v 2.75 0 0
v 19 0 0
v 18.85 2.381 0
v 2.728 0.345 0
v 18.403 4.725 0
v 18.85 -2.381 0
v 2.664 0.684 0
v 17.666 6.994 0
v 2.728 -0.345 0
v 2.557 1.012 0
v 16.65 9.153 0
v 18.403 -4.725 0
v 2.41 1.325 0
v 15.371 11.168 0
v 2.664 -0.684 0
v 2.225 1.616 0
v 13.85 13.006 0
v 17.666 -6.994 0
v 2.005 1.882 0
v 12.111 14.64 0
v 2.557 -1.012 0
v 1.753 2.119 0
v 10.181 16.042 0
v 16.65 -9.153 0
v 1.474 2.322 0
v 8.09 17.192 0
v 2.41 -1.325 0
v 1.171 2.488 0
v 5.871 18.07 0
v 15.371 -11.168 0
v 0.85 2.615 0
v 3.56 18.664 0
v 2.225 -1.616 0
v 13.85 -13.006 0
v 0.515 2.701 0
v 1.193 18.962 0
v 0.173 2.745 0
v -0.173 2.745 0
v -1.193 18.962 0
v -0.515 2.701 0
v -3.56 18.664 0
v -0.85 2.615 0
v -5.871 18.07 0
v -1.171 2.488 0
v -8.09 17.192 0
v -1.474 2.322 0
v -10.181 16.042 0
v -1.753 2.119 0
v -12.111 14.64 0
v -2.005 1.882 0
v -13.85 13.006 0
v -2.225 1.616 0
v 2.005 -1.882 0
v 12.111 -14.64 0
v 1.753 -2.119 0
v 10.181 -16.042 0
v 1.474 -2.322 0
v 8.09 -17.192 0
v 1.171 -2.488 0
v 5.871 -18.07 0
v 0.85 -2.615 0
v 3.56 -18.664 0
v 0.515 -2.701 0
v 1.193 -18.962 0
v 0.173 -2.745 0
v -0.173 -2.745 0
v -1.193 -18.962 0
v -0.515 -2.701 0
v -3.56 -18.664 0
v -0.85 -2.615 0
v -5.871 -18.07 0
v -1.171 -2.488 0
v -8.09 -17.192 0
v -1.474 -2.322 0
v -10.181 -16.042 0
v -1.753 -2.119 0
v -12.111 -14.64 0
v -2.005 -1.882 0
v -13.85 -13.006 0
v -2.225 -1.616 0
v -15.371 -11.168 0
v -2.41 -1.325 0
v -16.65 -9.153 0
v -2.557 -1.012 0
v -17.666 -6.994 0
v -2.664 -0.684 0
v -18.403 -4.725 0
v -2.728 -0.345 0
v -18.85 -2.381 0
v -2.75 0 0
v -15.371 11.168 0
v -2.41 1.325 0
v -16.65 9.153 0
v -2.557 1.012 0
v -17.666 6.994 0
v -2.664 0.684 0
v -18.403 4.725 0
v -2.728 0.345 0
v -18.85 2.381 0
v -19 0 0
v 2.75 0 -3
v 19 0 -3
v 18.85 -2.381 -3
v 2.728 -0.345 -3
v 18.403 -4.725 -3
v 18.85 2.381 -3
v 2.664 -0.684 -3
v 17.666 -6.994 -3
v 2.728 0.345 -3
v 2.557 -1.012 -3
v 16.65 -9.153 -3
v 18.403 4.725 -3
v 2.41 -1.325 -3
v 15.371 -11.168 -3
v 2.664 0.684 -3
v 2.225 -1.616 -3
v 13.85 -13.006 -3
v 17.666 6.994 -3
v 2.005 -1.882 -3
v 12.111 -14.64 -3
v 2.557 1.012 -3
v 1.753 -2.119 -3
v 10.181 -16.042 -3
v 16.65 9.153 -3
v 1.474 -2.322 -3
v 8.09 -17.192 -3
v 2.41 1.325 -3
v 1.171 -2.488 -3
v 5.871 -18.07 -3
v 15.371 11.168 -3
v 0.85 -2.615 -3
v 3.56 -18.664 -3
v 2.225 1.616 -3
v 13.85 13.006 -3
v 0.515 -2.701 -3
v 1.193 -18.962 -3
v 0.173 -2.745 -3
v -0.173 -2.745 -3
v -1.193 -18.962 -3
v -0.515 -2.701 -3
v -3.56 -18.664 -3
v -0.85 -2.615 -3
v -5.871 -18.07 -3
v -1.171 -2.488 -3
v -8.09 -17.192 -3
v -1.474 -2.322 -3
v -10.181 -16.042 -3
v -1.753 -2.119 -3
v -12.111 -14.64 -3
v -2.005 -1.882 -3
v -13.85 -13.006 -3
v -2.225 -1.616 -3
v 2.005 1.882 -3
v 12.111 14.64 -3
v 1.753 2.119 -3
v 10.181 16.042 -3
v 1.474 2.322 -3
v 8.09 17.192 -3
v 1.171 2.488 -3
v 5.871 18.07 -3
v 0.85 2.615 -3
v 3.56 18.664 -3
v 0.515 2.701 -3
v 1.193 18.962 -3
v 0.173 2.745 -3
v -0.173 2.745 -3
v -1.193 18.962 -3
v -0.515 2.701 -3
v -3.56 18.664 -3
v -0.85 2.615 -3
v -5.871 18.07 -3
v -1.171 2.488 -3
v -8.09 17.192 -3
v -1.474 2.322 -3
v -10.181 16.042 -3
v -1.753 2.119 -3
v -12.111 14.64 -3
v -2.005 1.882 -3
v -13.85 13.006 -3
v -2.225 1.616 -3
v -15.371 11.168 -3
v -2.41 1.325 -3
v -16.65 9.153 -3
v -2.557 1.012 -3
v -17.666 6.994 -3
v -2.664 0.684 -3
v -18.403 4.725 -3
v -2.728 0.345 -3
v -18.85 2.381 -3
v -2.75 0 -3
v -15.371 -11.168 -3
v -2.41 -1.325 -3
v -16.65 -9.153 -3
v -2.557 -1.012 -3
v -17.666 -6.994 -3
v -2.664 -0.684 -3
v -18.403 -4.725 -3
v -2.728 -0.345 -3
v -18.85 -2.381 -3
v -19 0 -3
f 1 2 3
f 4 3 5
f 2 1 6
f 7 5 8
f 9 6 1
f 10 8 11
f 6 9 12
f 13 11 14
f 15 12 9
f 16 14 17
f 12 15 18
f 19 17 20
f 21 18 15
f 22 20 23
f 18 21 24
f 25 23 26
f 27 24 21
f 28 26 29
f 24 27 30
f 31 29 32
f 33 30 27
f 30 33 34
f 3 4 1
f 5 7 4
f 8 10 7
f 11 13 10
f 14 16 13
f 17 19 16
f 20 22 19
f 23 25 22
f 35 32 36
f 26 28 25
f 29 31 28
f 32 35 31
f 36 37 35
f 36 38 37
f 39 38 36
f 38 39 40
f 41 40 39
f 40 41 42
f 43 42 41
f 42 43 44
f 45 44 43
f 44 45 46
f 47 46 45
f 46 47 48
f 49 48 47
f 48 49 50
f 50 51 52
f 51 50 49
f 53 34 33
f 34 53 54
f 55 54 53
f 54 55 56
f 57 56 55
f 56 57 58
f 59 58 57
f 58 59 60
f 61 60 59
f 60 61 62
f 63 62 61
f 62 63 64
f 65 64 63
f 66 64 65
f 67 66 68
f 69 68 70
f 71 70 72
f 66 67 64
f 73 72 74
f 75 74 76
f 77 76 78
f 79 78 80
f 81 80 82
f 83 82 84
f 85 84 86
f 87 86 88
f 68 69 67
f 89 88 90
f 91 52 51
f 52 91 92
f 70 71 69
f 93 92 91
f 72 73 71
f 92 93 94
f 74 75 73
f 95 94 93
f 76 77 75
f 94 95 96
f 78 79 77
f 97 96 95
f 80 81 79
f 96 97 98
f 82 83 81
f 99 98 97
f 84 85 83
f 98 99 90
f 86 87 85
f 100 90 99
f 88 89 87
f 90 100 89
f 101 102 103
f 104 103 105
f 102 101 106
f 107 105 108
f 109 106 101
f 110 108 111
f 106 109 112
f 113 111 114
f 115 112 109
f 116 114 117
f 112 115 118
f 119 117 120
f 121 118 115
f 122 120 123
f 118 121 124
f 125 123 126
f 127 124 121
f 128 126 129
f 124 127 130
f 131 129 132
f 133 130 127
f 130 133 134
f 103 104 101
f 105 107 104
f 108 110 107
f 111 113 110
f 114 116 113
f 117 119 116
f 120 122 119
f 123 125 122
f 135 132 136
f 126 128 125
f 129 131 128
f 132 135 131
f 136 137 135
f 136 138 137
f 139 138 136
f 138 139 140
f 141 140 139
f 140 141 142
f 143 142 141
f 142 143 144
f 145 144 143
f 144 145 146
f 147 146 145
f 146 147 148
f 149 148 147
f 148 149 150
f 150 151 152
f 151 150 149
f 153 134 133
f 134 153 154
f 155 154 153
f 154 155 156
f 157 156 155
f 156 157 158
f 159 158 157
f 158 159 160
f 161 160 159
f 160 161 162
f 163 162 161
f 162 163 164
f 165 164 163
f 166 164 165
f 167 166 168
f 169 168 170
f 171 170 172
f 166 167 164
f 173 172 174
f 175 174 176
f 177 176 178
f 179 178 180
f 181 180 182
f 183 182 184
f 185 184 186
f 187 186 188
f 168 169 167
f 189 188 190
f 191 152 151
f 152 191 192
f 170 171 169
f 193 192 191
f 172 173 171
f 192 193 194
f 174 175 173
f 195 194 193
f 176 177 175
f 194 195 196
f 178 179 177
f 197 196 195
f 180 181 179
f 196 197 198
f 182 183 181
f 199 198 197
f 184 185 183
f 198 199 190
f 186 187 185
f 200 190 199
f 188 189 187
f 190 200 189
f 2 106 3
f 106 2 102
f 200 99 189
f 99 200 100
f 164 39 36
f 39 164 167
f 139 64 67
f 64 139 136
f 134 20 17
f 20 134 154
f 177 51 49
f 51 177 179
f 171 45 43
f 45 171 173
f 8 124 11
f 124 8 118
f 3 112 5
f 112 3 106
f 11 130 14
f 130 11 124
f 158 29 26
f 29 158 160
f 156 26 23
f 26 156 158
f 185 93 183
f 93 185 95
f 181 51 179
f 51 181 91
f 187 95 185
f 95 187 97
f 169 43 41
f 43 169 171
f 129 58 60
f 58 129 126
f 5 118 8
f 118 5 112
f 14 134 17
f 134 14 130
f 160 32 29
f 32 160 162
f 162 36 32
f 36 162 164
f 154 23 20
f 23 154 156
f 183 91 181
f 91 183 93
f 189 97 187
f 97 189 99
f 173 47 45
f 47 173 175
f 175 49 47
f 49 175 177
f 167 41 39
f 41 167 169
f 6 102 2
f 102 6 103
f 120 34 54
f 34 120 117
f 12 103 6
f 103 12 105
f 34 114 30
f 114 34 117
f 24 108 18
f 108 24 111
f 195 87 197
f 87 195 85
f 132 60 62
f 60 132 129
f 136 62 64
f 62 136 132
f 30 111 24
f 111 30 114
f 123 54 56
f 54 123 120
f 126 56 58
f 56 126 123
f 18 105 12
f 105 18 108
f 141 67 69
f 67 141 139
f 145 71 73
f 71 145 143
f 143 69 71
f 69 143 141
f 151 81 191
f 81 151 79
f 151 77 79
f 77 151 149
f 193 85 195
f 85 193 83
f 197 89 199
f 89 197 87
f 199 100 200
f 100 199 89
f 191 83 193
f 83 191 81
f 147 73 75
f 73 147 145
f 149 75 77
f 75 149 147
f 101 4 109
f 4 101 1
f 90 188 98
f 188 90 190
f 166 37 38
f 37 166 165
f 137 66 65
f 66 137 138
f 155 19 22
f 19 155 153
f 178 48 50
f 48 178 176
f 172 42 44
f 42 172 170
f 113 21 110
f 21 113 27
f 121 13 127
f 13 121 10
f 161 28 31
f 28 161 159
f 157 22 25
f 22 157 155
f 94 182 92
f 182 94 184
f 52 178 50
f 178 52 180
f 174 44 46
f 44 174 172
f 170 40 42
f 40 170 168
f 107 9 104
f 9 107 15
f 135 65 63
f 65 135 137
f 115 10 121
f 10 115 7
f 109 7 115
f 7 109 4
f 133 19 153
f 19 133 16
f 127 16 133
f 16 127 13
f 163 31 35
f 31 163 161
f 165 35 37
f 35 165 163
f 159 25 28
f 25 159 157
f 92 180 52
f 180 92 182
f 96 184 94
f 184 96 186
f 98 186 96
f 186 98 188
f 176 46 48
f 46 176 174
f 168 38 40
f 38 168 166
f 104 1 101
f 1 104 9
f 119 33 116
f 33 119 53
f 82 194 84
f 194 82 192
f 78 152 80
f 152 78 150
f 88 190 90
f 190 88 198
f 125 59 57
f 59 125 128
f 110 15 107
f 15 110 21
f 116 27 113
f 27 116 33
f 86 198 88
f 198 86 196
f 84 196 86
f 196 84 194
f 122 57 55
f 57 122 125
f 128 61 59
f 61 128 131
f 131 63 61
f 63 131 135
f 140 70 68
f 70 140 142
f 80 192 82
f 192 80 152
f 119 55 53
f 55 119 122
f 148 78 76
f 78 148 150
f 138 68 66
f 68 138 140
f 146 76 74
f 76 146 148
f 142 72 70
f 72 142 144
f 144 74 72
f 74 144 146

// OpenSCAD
$fn = 50;


difference() {
	union() {
		translate(v = [0, 0, -3.0000000000]) {
			cylinder(h = 3, r = 10.0000000000);
		}
		translate(v = [0, 0, -3.0000000000]) {
			cylinder(h = 3, r = 19.0000000000);
		}
	}
	union() {
		#translate(v = [0, 0, -3]) {
			cylinder(h = 3, r = 2.7500000000);
		}
	}
}
